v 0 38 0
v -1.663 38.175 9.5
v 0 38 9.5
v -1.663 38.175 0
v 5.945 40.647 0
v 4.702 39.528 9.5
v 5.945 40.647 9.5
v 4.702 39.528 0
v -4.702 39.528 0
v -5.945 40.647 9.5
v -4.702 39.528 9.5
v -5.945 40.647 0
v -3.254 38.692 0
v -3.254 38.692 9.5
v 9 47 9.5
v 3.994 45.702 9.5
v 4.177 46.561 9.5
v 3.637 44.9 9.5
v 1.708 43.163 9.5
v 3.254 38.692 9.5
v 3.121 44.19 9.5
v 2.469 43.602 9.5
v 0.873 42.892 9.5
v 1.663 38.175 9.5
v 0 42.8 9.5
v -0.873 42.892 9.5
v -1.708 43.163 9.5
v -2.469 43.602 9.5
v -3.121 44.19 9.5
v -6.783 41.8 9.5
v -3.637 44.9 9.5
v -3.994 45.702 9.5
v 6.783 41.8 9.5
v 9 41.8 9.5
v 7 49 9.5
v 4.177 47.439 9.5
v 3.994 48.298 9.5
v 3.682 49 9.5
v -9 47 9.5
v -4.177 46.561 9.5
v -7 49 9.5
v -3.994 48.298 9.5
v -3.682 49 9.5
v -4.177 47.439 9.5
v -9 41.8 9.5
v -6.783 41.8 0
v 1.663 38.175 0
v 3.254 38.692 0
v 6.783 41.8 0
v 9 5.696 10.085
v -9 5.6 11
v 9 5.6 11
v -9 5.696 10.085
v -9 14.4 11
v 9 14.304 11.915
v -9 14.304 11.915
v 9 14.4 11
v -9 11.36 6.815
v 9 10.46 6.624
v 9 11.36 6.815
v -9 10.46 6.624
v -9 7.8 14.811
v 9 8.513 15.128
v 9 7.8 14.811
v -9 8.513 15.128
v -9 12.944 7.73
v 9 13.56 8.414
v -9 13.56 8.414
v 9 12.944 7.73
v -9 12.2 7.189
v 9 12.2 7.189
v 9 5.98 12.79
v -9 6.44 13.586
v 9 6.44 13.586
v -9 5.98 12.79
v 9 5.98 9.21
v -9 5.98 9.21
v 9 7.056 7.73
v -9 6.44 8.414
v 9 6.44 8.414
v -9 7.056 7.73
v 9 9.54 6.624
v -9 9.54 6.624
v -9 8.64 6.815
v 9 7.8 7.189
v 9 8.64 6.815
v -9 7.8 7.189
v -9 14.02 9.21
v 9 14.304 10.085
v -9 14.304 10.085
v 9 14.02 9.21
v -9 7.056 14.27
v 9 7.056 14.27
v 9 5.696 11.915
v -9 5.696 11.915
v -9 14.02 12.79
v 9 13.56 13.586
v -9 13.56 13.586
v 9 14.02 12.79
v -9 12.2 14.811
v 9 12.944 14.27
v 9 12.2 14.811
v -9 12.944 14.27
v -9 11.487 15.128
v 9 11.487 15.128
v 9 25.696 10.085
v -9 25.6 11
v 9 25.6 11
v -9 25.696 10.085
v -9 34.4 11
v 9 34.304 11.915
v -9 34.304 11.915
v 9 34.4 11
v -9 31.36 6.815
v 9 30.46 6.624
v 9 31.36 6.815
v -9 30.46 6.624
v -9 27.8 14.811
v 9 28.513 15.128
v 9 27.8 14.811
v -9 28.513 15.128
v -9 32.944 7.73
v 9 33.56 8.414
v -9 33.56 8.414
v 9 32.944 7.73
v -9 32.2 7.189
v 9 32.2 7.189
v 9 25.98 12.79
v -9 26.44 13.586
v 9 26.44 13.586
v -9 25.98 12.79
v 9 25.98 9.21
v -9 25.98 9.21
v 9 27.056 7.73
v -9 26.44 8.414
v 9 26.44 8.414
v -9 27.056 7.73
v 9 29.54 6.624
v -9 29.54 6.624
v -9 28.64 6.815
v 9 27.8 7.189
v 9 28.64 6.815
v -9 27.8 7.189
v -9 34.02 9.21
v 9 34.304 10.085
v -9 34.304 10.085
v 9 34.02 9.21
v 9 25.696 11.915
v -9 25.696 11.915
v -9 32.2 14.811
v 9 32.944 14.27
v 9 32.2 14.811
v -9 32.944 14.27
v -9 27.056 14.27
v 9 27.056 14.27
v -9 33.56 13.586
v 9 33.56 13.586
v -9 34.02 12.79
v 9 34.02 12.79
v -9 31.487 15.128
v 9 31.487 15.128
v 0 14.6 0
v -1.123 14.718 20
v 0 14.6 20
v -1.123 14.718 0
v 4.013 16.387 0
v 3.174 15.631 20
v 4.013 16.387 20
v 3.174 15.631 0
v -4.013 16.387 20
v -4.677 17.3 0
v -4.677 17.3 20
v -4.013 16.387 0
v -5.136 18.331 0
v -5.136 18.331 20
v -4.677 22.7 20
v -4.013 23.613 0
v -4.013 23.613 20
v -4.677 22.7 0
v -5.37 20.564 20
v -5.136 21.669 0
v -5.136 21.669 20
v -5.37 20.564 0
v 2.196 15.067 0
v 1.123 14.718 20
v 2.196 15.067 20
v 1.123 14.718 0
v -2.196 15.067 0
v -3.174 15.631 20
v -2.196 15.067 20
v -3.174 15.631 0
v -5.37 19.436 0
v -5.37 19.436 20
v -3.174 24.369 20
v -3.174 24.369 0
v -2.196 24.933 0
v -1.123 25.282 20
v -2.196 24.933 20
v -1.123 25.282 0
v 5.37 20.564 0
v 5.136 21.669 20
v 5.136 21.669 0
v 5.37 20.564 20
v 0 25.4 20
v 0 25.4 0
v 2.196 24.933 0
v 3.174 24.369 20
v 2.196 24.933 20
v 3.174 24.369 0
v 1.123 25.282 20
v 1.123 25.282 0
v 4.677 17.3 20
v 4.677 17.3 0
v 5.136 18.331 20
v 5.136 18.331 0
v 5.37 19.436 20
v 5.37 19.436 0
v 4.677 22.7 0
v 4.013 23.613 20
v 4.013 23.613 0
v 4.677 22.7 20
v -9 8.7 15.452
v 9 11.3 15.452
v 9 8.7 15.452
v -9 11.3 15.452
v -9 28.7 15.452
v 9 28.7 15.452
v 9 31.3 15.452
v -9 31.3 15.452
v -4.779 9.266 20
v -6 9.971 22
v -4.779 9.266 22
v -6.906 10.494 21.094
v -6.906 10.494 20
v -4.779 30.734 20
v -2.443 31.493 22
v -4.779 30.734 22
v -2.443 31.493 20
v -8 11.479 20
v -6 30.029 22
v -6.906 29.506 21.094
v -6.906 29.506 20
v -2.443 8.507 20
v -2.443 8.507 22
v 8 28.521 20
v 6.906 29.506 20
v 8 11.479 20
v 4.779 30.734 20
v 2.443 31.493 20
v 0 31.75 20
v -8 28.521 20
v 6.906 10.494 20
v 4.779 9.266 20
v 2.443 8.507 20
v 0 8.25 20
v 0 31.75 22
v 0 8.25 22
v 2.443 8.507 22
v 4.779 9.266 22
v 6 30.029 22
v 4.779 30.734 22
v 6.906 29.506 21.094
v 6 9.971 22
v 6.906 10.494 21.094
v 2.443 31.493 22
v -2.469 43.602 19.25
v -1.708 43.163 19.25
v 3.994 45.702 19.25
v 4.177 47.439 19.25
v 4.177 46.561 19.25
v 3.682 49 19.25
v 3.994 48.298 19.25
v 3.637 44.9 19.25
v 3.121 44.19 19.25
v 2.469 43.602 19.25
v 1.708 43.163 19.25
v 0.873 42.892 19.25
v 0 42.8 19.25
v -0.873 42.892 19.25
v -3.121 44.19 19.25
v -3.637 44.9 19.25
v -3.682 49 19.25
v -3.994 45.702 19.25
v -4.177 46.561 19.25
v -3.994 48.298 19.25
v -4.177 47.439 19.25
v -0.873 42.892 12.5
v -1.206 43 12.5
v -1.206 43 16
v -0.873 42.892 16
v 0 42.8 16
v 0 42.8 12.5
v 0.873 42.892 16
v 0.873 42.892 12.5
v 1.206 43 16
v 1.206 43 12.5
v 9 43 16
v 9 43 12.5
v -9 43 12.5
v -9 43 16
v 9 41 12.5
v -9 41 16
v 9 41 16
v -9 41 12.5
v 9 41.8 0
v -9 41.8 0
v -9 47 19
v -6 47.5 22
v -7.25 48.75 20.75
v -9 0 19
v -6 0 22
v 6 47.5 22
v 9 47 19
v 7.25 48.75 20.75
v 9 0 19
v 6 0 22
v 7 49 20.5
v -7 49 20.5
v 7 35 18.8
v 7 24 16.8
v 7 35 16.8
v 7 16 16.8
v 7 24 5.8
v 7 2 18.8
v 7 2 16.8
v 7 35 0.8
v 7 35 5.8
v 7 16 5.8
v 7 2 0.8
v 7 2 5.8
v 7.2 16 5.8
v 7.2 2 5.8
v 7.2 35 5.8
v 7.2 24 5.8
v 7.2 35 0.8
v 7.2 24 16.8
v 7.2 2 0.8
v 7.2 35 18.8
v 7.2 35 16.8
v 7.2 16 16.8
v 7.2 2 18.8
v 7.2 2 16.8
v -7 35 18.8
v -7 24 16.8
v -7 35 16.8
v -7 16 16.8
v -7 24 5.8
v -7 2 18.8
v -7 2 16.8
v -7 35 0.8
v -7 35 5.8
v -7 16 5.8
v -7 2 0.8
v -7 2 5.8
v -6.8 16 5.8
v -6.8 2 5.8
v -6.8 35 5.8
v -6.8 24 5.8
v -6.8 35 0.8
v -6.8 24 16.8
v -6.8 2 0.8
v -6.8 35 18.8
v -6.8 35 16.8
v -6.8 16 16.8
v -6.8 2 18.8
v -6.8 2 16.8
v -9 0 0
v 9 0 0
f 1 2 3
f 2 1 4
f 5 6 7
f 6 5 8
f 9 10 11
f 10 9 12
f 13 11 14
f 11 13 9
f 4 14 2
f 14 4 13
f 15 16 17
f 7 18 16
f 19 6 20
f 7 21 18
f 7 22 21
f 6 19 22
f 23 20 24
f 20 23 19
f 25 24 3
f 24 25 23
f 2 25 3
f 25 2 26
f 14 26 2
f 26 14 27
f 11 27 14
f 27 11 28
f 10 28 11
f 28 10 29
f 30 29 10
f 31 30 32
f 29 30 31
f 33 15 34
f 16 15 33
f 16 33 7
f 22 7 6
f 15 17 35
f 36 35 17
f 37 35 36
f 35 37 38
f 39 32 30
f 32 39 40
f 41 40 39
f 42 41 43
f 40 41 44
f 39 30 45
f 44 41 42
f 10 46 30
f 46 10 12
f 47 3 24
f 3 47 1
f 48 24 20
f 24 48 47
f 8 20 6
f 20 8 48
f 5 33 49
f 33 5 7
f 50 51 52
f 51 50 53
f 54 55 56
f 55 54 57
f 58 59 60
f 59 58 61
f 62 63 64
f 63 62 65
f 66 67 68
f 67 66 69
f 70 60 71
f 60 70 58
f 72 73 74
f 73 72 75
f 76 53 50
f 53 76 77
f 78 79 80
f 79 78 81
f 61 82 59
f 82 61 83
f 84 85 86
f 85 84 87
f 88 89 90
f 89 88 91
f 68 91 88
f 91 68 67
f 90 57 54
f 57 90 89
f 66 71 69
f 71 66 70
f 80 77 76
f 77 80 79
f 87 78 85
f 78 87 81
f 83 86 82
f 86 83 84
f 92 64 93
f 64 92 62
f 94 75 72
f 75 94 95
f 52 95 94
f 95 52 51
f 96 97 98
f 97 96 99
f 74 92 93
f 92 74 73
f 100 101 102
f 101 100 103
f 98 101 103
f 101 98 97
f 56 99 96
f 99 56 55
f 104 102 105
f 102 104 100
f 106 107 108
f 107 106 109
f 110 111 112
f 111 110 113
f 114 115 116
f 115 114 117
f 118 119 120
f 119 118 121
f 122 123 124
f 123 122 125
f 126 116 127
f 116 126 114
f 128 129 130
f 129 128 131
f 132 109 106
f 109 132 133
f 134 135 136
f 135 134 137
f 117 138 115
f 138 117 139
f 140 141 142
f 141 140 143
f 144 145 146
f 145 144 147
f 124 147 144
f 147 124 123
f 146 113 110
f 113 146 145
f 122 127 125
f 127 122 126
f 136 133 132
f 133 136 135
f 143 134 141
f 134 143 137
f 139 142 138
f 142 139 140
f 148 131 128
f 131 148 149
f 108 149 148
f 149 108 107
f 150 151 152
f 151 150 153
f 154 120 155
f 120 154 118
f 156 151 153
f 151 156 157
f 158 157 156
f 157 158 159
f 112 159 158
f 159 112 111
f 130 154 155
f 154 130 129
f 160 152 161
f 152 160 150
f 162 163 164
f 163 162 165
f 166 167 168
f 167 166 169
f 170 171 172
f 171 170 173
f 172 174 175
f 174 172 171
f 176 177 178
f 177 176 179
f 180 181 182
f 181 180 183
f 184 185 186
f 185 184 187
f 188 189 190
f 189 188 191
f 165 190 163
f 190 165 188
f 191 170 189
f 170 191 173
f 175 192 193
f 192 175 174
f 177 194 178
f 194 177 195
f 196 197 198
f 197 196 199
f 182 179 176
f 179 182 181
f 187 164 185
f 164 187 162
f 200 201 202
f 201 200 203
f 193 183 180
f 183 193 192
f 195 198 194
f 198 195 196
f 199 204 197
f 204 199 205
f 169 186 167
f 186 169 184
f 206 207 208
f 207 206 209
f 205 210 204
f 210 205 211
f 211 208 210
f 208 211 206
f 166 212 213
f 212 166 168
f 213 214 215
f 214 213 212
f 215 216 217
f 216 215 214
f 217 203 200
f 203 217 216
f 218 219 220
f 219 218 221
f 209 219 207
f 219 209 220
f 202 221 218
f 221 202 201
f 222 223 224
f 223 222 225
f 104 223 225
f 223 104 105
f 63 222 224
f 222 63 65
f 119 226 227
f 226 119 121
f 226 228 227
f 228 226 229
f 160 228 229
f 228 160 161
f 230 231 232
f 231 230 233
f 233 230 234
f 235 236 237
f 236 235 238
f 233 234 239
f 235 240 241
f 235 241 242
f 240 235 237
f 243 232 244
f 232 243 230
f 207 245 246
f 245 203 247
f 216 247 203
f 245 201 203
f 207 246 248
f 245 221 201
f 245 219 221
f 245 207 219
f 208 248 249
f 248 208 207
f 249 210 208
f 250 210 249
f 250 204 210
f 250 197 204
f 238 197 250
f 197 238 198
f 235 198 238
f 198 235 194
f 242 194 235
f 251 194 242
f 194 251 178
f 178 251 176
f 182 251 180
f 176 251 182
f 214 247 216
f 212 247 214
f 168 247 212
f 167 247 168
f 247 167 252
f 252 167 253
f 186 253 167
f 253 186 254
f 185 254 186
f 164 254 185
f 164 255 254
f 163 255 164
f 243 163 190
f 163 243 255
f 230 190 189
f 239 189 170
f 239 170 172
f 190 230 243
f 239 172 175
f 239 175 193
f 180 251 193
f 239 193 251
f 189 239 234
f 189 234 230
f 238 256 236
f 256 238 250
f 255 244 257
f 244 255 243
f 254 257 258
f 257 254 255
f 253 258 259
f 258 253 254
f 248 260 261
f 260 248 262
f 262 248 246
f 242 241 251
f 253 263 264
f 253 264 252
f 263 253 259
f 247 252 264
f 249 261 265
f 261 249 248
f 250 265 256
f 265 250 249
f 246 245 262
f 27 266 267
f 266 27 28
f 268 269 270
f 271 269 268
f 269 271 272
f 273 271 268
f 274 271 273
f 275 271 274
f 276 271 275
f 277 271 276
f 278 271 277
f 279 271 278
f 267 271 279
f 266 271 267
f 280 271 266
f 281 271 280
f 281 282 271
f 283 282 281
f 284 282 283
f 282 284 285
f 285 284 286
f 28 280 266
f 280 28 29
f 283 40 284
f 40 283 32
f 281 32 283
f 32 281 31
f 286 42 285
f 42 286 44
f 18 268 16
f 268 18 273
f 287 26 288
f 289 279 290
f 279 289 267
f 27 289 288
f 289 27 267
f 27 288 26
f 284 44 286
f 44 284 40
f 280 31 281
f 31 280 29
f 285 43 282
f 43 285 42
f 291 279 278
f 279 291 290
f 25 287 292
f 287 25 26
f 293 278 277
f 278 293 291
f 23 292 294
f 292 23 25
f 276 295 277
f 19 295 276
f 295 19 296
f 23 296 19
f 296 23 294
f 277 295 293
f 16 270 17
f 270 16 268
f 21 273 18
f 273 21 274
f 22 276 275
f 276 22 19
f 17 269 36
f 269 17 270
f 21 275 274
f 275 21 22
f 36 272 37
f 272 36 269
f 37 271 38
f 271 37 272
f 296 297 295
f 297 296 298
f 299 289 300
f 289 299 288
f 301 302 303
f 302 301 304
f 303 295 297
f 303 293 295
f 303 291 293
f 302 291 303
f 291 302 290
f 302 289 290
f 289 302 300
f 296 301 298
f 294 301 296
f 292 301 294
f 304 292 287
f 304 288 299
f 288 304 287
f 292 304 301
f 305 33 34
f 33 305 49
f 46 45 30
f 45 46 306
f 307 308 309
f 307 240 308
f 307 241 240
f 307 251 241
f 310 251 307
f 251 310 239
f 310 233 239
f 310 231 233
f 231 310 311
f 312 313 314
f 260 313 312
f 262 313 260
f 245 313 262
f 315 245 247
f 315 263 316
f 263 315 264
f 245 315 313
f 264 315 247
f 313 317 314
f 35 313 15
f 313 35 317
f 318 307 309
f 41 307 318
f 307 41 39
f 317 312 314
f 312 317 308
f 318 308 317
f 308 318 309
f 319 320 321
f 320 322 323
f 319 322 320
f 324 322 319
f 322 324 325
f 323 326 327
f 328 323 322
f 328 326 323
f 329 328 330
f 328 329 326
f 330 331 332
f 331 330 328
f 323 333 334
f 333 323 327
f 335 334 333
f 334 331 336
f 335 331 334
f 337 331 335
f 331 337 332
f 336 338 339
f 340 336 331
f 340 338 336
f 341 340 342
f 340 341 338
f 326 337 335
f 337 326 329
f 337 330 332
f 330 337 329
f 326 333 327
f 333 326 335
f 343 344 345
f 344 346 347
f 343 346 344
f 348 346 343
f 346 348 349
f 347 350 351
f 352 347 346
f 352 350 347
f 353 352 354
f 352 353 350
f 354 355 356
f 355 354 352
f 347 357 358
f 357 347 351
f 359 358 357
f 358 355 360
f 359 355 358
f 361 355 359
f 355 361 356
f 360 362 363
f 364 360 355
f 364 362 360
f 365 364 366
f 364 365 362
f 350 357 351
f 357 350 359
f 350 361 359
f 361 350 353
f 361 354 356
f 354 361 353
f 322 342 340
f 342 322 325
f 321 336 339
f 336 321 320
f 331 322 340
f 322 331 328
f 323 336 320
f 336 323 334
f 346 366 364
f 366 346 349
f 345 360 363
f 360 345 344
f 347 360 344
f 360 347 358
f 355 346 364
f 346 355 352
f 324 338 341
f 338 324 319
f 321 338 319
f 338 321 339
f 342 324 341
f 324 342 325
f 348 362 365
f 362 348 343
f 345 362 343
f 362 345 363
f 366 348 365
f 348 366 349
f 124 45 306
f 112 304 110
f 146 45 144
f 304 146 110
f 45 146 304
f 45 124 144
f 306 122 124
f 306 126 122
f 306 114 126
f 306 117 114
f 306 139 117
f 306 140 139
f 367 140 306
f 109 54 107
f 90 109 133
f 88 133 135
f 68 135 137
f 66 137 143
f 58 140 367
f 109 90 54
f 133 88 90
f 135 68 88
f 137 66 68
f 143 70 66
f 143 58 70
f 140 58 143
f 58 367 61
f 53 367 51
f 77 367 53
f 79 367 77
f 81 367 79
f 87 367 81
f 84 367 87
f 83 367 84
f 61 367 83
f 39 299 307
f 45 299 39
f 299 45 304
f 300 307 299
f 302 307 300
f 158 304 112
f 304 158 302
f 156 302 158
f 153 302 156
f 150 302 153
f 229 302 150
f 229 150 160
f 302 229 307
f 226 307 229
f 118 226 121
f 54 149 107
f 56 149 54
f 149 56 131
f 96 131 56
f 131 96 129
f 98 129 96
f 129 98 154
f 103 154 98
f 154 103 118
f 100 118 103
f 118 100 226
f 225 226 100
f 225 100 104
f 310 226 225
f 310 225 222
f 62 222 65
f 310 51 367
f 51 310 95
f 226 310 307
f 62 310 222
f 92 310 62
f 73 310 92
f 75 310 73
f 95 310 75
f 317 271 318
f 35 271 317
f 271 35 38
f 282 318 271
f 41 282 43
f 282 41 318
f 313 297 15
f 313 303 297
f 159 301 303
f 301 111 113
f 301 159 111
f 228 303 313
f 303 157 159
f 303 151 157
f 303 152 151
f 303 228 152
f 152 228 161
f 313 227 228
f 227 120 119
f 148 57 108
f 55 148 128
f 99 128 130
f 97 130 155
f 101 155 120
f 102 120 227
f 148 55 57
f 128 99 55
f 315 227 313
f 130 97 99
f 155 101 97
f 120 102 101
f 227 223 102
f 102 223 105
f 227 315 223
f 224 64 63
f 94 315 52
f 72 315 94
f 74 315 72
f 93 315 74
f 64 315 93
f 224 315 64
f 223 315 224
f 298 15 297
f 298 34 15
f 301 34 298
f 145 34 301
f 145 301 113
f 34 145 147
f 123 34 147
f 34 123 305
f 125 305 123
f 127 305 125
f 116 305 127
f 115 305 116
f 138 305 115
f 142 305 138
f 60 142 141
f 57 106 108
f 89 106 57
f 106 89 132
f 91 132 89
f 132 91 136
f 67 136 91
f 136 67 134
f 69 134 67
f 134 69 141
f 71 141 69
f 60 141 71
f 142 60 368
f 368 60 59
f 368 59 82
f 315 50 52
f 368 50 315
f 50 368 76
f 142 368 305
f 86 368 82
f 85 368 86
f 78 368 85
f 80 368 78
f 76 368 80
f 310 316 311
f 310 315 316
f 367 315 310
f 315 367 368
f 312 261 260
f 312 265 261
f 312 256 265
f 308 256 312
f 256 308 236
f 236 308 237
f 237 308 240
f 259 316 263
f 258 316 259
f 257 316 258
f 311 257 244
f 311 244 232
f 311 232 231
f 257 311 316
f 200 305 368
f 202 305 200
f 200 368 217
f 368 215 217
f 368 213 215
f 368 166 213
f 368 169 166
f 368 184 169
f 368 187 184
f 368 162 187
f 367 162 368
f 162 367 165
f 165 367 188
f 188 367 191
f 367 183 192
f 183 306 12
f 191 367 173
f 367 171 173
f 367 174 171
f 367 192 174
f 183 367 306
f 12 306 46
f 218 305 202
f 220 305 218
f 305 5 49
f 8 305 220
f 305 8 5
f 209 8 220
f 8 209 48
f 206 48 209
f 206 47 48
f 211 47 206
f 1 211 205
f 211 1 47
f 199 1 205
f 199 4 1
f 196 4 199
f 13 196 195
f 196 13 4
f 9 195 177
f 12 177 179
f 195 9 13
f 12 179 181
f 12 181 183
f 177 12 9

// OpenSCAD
// PRUSA iteration3
// Y frame corners
// GNU GPL v3
// Josef Průša <iam@josefprusa.cz> and contributors
// http://www.reprap.org/wiki/Prusa_Mendel
// http://prusamendel.org


module corner_base(){	
 translate([-9,-11,0])cube([18,22,49]);
 
}

module corner_holes(){
 translate([-11,-11,0]){
  // Bottom hole
  translate([0,11,10]) rotate([0,90,0]) translate([0,0,-5]) cylinder(h = 270, r=4.4, $fn=30);
  // Top hole
  translate([0,11,30]) rotate([0,90,0]) translate([0,0,-5]) cylinder(h = 270, r=4.4, $fn=30);
  // Middle hole
  translate([11,0,20]) rotate([0,0,90]) rotate([0,90,0]) translate([0,0,-5]) cylinder(h = 270, r=5.4, $fn=30);
  // Bottom hole bridge
  translate([0,8.8,10]) rotate([0,90,0]) translate([0,0,-5]) cylinder(h = 270, r=2.6, $fn=6);
  // Top hole bridge
  translate([0,8.8,30]) rotate([0,90,0]) translate([0,0,-5]) cylinder(h = 270, r=2.6, $fn=6);

  // Washer hole
  translate([11,-3,20]) rotate([0,0,90]) rotate([0,90,0]) translate([0,0,-5]) cylinder(h = 10, r=11.75, $fn=30);

  // Top smooth rod insert
  // Smooth rod place
  translate([11,2.75,47]) rotate([0,90,90]) cylinder(h = 10, r=4.2, $fn=30); 
  // Ziptie
  translate([-5,6,41])  cube([30,3.5,2]);
  
  // LM8UU keepout
  difference(){
    translate([11,12.5,46]) rotate([0,90,90]) cylinder(h = 270, r=8, $fn=30);
    translate([21,12.5,62]) rotate([0,90,90]) cube([20,20,30]);
  } 
  
  translate([21,12.5,57]) rotate([0,90,90]) cube([15.2,20,20]);
 
 }
 
}

module corner_fancy(){
 // Side corner cutouts
  translate([-8,-9,0]) rotate([0,0,-45-180]) translate([-15,0,-1]) cube([30,30,51]);
  translate([8,-9,0]) rotate([0,0,45-180]) translate([-15,0,-1]) cube([30,30,51]);
 // Top corner cutouts
    translate([7,0,49]) rotate([0,45,0]) translate([-15,-15,0]) cube([30,30,30]);
    translate([-7,0,49]) rotate([0,-45,0]) translate([-15,-15,0]) cube([30,30,30]);
    rotate([0,0,90]){
    translate([-9.5,0,49]) rotate([0,-45,0]) translate([-15,-15,0]) cube([30,30,30]);
    }
}

module selective_infill(){
    
    translate([7,2,0.8])cube([0.2,33,5]); 
    translate([-7,2,0.8])cube([0.2,33,5]);
    
    translate([ 7,16,5.8])cube([0.2,8,11]);
    translate([-7,16,5.8])cube([0.2,8,11]);
    
    translate([7,2,16.8])cube([0.2,33,2]); 
    translate([-7,2,16.8])cube([0.2,33,2]);
}
    
    
// Final part
module corner(){
 // Rotate the part for better printing
    translate([0,0,11]) rotate([-90,0,0]) 
    {
    difference(){
        corner_base();
        corner_holes();
        corner_fancy();
        translate([0,11,0]) rotate([90,0,0])selective_infill();
        
    }
    }

}

corner();
